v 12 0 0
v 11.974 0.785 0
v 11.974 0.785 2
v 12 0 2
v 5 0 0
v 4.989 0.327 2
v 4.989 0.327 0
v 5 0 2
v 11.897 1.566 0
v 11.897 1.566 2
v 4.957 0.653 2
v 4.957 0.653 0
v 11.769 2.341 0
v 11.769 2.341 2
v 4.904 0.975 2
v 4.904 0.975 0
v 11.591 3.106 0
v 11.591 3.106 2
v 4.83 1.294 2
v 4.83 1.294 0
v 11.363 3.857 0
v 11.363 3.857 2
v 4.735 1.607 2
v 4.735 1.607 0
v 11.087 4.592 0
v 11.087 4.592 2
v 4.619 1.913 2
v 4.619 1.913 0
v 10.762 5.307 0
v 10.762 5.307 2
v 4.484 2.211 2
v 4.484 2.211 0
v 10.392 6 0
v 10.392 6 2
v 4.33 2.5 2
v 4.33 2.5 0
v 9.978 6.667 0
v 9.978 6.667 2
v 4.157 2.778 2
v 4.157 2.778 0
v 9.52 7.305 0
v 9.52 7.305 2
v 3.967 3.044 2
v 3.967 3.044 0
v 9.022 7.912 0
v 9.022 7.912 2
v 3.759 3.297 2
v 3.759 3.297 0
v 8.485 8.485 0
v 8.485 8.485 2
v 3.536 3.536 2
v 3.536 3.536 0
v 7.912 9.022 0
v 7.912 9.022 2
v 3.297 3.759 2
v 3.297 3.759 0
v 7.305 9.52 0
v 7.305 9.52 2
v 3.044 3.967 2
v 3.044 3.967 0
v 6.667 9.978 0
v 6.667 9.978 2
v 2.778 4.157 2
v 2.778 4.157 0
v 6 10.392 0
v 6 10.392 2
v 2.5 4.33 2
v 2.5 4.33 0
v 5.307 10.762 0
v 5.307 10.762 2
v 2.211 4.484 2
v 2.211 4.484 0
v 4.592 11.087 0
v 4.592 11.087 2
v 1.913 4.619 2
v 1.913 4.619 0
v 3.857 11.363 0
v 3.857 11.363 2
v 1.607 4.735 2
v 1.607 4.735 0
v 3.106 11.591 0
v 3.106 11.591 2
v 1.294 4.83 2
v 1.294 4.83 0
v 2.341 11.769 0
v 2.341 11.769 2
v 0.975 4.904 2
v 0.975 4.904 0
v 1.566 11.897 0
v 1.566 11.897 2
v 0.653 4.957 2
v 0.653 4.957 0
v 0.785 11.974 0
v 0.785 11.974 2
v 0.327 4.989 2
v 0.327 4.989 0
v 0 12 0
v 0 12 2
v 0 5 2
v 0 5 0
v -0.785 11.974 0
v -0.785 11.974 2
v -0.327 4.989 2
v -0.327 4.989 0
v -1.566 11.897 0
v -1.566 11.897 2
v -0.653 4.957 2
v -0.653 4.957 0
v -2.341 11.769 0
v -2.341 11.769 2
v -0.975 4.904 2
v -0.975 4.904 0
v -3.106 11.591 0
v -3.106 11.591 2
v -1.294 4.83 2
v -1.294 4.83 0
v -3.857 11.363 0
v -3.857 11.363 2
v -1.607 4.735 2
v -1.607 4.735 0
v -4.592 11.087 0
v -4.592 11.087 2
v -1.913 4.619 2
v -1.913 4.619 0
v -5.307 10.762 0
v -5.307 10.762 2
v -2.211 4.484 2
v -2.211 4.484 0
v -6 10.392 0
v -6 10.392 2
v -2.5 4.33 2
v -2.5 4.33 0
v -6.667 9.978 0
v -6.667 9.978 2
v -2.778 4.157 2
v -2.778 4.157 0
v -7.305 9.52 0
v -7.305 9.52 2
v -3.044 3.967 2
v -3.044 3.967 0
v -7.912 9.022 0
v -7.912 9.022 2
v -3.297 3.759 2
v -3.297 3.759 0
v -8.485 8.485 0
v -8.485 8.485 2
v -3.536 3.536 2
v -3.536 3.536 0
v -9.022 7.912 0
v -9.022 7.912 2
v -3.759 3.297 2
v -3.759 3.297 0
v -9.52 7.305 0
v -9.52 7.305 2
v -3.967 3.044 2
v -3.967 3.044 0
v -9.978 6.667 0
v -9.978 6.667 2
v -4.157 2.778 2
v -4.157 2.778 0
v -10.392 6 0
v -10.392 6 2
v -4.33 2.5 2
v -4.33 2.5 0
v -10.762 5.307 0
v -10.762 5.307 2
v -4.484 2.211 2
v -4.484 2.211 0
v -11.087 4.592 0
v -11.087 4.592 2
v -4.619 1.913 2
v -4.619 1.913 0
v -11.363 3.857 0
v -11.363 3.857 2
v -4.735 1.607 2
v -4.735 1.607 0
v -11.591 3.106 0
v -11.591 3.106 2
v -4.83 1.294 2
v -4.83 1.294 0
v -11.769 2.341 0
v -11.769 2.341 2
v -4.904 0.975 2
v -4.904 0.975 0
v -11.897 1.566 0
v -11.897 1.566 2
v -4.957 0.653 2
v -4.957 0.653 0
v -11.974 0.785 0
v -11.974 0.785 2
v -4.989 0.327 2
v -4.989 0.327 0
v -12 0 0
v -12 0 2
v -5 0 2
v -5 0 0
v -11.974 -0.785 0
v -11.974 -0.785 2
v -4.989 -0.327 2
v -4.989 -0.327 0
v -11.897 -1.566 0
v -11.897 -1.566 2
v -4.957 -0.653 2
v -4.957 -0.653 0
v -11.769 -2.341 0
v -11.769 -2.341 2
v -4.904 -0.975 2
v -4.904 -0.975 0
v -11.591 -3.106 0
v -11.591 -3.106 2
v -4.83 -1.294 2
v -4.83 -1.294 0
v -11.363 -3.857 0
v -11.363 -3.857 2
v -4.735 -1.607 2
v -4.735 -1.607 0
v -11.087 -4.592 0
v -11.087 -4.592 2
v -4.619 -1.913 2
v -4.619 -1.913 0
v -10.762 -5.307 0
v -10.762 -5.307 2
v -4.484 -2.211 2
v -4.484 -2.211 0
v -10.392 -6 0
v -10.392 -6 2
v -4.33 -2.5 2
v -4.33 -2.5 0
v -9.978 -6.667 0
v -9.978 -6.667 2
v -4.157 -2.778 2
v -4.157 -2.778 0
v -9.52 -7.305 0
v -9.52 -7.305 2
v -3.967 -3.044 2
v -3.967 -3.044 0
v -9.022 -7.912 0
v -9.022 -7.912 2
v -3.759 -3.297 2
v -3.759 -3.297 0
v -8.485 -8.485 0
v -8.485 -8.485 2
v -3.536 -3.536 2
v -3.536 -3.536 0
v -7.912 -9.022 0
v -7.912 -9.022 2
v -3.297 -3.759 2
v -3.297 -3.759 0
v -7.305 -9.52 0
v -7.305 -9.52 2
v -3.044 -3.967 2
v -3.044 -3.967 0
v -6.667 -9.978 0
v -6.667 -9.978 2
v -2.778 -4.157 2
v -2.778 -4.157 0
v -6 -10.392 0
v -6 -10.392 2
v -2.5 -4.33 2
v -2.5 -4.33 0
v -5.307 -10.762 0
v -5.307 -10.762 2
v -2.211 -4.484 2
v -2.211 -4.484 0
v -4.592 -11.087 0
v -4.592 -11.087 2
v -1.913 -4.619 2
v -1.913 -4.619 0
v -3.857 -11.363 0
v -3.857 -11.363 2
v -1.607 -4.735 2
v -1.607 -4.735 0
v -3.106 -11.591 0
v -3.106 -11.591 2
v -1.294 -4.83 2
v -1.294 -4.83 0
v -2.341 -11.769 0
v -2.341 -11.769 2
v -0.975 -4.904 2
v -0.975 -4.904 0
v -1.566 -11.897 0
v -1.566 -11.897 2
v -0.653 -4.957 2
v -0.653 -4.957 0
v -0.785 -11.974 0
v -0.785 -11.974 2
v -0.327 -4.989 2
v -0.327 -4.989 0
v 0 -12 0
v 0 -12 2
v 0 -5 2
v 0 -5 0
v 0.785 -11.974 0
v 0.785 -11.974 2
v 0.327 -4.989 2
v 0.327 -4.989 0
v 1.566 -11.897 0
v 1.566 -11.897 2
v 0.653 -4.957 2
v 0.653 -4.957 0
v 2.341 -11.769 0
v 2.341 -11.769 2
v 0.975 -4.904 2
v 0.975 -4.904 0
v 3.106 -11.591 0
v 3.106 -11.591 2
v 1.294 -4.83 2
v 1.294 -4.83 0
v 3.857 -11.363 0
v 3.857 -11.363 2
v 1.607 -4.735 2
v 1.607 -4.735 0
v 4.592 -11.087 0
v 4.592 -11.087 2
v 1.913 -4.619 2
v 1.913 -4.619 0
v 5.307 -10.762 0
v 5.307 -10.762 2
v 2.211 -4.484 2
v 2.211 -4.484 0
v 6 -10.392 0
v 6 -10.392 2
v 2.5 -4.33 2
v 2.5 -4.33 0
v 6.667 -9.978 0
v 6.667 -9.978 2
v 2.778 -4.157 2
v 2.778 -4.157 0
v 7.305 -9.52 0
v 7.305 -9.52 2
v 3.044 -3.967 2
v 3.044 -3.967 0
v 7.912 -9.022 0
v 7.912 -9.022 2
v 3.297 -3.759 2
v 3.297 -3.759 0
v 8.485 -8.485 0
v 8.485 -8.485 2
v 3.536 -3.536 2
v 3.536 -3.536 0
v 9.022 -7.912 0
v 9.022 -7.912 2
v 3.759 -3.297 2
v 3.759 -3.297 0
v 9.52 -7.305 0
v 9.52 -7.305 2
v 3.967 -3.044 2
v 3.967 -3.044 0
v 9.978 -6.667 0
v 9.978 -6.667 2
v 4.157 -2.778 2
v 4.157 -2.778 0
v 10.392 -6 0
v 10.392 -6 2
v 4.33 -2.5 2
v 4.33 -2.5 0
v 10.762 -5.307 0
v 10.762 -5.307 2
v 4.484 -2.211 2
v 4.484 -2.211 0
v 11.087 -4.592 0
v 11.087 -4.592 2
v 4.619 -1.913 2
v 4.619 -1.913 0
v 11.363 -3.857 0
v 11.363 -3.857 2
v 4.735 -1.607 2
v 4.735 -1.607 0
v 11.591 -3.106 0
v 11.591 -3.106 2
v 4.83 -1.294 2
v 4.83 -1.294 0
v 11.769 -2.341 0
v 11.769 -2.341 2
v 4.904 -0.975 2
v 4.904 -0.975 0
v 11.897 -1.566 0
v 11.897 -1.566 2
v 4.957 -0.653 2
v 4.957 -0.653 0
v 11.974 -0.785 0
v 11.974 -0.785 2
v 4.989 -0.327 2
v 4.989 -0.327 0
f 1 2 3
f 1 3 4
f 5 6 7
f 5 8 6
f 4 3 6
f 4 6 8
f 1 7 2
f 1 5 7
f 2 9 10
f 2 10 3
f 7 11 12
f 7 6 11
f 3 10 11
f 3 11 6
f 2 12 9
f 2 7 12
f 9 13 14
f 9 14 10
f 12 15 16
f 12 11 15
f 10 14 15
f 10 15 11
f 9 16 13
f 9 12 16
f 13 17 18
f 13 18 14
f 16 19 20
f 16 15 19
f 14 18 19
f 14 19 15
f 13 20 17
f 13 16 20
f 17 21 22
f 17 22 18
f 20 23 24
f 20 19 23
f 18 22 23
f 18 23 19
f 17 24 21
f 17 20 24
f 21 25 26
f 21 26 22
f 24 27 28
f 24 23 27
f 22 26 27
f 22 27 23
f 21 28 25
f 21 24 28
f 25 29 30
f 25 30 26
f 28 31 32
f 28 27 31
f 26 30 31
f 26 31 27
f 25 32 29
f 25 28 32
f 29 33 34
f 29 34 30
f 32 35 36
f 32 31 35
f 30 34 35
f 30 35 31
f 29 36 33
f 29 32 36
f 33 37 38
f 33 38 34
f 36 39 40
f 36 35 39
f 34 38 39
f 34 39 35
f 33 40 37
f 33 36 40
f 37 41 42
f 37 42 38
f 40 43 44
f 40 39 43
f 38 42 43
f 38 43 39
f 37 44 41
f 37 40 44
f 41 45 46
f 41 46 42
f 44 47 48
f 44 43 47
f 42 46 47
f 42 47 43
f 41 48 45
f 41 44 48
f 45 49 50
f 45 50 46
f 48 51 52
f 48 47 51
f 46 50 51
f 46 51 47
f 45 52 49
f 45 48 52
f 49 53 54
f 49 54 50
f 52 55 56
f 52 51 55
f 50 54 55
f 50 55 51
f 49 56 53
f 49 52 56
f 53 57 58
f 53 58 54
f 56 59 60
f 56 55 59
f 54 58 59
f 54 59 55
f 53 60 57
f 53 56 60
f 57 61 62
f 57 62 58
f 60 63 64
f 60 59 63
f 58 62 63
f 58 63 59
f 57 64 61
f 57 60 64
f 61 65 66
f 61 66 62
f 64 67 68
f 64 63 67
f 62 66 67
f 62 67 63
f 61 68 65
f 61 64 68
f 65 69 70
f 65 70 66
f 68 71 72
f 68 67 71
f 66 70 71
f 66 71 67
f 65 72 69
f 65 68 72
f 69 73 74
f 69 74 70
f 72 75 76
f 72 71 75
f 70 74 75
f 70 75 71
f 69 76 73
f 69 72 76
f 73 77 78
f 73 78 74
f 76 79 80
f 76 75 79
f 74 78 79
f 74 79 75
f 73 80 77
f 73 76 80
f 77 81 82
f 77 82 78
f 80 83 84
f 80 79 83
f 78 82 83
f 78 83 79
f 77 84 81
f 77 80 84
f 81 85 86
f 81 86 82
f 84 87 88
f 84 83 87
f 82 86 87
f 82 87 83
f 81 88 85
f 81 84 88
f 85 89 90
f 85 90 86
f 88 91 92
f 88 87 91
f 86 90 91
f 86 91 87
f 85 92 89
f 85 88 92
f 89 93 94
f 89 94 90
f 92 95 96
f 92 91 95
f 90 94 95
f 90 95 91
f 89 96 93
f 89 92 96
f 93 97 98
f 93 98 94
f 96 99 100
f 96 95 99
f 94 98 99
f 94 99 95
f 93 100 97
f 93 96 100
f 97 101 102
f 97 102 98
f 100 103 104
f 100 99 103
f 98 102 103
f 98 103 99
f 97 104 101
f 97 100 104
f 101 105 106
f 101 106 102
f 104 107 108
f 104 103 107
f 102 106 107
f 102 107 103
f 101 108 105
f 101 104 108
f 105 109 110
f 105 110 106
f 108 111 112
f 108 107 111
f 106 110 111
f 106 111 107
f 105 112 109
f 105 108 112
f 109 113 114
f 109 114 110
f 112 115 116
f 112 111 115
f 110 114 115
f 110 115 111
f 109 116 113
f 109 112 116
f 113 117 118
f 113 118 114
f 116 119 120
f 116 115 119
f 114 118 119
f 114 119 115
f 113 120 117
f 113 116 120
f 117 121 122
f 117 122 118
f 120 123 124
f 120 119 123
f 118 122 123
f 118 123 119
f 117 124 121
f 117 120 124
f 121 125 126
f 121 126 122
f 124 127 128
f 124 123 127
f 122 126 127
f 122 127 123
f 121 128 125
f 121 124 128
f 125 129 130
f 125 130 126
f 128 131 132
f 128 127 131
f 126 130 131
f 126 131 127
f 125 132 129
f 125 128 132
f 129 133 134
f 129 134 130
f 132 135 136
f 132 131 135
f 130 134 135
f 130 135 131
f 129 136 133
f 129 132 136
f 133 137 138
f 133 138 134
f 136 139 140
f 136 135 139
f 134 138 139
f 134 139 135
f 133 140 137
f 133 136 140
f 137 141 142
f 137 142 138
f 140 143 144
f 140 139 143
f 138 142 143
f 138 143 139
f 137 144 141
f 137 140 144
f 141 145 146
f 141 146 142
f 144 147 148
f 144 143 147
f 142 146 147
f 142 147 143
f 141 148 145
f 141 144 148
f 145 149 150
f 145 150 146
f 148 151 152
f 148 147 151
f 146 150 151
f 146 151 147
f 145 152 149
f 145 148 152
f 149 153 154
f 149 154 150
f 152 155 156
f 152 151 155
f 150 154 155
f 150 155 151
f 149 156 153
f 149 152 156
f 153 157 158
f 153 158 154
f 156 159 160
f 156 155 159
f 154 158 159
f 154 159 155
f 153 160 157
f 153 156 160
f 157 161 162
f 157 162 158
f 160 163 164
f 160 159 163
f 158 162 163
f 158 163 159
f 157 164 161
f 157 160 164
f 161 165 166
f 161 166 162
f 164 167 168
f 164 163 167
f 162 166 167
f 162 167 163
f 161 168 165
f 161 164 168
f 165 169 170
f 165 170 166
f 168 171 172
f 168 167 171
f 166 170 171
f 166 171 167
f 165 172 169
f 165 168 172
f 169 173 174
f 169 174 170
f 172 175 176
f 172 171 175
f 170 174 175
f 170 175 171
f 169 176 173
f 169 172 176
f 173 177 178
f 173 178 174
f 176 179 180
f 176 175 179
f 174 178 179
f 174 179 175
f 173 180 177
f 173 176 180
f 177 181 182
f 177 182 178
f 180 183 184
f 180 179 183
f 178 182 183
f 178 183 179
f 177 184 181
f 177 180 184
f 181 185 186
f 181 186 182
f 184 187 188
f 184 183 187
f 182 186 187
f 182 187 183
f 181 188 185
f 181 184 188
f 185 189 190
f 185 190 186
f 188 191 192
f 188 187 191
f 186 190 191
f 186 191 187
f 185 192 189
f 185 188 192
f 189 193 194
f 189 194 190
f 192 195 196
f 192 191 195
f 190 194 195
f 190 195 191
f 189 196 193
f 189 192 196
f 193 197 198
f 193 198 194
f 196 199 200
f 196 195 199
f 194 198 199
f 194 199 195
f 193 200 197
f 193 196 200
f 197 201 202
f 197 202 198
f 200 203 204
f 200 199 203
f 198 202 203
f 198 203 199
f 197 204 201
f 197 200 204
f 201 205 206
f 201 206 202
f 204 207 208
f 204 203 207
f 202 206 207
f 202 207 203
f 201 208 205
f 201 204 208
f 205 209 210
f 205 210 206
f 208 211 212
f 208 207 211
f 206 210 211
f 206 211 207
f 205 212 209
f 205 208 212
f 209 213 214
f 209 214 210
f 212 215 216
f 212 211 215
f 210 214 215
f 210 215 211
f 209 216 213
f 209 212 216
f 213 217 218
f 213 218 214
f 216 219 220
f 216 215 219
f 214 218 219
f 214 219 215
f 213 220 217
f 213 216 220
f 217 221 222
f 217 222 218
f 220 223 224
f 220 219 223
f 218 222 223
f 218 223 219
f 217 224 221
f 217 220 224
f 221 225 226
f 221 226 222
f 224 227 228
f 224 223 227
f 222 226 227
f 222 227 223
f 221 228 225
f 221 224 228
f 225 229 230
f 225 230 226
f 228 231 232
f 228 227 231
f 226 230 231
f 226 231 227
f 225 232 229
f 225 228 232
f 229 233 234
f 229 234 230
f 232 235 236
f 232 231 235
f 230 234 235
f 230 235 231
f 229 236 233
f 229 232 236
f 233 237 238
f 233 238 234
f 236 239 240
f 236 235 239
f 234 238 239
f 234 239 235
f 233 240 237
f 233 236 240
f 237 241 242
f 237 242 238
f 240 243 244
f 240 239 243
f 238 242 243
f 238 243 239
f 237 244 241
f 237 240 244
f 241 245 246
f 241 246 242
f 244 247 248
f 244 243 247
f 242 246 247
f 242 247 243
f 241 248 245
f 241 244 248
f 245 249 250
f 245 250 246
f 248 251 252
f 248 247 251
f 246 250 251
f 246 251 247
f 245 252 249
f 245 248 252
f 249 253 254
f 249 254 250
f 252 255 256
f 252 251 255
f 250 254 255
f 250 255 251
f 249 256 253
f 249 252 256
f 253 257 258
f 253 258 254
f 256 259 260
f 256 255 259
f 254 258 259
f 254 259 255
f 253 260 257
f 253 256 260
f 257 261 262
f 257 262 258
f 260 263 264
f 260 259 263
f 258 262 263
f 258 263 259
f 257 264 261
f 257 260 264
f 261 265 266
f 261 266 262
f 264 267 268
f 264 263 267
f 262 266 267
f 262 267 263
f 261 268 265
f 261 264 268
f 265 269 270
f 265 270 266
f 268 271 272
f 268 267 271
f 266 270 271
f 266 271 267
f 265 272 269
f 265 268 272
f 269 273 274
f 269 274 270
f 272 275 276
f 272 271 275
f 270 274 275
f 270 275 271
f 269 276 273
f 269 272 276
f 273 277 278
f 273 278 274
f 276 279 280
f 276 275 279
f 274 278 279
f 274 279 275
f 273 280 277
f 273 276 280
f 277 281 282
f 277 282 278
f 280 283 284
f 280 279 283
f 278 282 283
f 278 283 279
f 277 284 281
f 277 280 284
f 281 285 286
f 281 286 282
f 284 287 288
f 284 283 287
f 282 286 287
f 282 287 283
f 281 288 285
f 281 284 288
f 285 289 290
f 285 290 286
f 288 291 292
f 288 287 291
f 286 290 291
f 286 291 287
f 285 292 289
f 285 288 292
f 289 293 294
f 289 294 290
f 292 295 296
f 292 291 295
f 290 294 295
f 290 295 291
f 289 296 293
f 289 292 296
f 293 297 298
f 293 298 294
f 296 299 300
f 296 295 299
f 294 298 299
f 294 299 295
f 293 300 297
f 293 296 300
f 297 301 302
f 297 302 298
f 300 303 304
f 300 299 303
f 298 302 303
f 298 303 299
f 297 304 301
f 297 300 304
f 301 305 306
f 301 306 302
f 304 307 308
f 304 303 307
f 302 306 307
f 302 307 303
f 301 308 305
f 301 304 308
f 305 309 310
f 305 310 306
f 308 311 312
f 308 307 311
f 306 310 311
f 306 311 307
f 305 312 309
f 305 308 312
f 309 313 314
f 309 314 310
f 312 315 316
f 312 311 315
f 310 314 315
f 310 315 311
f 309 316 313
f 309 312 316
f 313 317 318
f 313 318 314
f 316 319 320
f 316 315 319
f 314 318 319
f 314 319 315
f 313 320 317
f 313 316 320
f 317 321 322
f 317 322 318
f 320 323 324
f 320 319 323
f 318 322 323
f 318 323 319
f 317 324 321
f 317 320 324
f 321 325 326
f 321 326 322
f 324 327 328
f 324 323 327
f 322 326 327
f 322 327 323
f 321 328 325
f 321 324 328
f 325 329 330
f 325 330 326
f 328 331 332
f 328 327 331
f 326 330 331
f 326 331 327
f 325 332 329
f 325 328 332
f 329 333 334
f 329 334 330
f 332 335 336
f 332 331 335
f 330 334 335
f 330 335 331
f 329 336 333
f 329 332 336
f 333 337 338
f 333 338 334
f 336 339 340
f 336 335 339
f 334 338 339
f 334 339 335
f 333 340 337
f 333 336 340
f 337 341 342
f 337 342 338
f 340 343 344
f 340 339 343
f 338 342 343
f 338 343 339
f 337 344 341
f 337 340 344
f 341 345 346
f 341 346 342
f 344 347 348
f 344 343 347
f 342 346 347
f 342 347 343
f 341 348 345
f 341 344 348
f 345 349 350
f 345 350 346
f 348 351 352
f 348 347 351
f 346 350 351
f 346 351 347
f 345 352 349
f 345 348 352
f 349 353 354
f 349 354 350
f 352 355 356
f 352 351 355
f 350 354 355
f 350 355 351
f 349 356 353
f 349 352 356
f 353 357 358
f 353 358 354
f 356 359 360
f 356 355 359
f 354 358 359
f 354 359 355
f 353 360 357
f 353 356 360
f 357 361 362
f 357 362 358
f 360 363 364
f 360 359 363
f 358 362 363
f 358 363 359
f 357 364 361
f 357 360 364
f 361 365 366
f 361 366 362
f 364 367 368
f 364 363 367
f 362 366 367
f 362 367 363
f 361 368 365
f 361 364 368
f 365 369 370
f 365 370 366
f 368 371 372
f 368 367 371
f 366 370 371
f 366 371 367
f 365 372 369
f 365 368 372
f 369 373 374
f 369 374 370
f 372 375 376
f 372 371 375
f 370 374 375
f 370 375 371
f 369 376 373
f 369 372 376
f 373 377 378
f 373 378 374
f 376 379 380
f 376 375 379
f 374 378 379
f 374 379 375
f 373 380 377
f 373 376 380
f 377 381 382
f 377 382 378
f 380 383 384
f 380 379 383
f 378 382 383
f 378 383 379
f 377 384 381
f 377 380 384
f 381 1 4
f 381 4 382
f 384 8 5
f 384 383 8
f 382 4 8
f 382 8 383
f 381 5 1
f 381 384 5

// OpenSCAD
// Original MechIntel educational model. CC0-1.0. Units: mm.
// Not a standardized or load-rated component.
$fn=96;
outer_diameter=24;
inner_diameter=10;
height=2;
difference(){ cylinder(d=outer_diameter,h=height); translate([0,0,-1]) cylinder(d=inner_diameter,h=height+2); }
